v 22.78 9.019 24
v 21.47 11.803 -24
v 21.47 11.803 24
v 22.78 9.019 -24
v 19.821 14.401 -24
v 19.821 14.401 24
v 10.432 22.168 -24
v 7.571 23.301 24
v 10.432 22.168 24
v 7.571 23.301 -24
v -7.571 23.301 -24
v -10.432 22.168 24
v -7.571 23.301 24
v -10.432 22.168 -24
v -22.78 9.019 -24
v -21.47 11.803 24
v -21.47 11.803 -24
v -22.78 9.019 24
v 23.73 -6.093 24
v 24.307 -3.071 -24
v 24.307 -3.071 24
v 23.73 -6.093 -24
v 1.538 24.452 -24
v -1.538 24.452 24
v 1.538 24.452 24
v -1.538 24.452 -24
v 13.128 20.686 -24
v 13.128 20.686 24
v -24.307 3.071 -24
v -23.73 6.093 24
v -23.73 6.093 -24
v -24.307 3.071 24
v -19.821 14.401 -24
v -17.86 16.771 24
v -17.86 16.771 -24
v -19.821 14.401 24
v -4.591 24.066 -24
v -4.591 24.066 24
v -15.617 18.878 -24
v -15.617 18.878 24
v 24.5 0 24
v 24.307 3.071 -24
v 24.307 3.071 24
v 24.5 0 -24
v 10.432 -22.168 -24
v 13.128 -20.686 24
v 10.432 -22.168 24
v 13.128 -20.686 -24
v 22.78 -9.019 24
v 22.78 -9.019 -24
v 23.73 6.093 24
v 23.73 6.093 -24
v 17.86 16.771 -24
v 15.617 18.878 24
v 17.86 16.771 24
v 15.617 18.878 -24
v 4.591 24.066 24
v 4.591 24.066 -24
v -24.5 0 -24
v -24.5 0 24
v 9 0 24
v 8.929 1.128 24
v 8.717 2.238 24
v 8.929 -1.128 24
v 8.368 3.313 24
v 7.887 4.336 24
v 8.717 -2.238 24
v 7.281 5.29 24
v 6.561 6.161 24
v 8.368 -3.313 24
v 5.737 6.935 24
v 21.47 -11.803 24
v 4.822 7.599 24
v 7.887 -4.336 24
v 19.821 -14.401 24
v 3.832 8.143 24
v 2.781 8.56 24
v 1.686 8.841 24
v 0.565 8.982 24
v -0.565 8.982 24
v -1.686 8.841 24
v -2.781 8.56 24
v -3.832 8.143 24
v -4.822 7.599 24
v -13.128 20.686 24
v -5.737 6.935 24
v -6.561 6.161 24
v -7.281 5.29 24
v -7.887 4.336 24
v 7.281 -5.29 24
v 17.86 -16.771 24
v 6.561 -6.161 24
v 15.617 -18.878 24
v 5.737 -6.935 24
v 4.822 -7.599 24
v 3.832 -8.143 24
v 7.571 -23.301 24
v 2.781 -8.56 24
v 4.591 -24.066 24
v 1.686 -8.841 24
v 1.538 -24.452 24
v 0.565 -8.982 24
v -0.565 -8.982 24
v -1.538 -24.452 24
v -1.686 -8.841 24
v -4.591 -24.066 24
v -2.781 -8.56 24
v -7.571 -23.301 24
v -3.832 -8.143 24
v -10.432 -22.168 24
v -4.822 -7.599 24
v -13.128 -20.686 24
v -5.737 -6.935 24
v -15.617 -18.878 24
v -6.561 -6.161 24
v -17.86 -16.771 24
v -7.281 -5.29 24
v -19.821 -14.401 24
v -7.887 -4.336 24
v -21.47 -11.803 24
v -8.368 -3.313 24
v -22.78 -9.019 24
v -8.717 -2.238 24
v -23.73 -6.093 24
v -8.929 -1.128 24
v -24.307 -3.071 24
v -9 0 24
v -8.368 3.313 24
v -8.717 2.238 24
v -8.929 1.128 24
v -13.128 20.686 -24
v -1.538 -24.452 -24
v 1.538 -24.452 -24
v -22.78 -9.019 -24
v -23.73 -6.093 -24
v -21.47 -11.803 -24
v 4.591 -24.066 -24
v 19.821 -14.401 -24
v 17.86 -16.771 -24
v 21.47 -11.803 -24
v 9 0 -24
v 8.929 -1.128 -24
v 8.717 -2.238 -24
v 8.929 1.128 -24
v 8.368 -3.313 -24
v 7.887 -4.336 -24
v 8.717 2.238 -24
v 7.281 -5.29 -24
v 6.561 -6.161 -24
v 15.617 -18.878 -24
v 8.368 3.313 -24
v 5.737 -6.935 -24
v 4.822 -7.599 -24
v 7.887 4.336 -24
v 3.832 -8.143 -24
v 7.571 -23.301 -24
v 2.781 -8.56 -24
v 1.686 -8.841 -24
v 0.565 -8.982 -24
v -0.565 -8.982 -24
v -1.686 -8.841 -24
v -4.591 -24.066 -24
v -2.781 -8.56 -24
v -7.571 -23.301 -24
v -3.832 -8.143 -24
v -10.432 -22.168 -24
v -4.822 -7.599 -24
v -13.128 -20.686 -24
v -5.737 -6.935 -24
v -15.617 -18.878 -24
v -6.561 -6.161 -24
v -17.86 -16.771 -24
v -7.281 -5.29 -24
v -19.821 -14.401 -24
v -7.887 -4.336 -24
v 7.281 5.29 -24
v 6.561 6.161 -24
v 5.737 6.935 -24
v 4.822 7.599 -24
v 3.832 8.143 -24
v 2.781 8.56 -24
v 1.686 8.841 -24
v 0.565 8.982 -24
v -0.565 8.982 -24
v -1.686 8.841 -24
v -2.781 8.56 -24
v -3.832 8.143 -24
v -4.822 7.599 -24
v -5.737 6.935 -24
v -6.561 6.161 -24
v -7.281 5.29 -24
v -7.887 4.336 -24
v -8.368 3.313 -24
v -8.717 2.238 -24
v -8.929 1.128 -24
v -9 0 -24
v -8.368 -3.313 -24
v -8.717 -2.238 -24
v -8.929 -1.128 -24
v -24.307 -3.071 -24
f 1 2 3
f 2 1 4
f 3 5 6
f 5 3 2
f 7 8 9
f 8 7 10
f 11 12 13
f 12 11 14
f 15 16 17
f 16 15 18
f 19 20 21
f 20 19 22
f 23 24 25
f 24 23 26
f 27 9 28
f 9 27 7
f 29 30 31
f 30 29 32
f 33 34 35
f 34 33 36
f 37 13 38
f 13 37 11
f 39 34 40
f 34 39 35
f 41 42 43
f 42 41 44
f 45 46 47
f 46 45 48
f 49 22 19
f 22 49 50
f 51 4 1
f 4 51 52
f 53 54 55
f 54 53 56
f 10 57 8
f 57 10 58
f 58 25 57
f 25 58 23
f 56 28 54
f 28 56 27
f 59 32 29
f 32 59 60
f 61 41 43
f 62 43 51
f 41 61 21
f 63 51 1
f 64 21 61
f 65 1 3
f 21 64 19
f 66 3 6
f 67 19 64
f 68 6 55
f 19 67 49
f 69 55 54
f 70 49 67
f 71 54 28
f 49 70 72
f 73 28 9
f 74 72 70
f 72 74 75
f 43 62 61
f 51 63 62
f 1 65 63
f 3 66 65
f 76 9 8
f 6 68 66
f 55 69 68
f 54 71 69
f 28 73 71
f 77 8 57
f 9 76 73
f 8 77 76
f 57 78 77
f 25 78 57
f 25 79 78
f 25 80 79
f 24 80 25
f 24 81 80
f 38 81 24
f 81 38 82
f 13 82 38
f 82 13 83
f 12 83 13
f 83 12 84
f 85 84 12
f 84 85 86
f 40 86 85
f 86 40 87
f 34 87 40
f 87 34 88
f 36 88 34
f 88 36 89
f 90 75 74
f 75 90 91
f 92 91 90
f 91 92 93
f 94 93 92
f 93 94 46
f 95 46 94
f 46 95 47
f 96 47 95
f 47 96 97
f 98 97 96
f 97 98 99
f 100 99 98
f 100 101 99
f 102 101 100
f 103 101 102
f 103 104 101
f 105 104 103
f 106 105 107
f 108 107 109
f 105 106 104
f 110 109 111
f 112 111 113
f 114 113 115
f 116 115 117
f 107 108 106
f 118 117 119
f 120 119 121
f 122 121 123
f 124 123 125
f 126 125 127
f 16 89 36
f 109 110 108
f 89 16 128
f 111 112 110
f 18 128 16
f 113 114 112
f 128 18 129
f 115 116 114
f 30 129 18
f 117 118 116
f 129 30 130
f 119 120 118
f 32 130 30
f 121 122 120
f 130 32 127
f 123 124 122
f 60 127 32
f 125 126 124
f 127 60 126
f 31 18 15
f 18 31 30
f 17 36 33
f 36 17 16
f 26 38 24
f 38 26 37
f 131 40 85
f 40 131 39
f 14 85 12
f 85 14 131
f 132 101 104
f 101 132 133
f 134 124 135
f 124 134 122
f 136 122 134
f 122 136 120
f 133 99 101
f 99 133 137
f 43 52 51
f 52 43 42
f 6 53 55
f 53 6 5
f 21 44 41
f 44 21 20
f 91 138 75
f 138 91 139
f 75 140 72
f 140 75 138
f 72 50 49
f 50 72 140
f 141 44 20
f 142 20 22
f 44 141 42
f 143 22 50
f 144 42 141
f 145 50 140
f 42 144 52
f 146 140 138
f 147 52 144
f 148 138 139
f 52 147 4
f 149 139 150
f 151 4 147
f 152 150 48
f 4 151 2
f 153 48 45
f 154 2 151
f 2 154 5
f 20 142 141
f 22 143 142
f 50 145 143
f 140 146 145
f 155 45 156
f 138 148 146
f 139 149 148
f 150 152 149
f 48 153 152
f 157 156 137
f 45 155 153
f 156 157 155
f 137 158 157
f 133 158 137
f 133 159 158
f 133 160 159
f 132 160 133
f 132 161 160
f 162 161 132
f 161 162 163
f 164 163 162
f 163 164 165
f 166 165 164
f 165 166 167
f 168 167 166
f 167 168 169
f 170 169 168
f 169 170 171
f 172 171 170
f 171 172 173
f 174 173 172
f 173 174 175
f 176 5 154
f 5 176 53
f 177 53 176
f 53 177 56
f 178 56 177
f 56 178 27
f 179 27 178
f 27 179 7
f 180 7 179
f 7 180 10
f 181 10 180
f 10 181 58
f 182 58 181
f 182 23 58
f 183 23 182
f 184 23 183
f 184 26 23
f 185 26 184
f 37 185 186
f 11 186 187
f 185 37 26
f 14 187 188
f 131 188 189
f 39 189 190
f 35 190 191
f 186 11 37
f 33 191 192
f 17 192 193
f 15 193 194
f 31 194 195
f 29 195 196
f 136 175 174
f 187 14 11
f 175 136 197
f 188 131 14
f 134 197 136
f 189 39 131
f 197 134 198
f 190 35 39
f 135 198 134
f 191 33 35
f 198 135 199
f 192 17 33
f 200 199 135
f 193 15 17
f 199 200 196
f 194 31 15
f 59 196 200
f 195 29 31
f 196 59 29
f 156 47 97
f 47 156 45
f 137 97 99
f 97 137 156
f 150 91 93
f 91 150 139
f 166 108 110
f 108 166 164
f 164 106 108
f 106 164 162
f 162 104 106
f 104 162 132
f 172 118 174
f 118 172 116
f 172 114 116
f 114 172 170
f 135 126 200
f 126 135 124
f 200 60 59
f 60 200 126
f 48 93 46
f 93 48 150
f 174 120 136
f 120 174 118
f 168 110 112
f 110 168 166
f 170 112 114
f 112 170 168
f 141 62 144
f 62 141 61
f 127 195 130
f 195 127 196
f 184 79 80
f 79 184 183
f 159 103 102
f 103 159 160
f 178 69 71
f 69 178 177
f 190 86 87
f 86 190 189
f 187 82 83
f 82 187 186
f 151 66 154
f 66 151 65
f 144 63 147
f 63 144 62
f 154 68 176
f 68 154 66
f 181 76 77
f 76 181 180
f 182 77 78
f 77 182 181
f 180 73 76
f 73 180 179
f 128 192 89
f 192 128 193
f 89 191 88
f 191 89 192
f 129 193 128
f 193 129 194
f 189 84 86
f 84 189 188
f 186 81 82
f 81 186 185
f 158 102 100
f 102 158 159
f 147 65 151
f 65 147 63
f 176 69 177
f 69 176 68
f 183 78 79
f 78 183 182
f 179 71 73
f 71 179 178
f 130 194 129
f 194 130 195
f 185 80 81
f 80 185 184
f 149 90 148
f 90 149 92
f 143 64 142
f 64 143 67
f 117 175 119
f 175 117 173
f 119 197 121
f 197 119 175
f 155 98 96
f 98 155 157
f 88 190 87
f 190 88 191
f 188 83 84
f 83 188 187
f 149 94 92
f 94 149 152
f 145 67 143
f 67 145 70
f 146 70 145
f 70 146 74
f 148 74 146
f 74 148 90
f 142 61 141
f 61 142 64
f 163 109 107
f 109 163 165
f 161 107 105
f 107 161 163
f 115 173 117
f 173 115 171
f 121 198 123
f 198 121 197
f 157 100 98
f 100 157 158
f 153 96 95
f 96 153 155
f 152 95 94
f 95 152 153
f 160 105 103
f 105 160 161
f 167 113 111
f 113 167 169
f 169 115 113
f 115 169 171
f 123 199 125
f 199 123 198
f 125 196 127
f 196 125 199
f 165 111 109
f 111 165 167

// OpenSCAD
$fn = 50;


difference() {
	union() {
		translate(v = [0, 0, -24.0000000000]) {
			cylinder(h = 48, r = 24.5000000000);
		}
	}
	union() {
		translate(v = [0, 0, -100.0000000000]) {
			cylinder(h = 200, r = 9);
		}
	}
}
